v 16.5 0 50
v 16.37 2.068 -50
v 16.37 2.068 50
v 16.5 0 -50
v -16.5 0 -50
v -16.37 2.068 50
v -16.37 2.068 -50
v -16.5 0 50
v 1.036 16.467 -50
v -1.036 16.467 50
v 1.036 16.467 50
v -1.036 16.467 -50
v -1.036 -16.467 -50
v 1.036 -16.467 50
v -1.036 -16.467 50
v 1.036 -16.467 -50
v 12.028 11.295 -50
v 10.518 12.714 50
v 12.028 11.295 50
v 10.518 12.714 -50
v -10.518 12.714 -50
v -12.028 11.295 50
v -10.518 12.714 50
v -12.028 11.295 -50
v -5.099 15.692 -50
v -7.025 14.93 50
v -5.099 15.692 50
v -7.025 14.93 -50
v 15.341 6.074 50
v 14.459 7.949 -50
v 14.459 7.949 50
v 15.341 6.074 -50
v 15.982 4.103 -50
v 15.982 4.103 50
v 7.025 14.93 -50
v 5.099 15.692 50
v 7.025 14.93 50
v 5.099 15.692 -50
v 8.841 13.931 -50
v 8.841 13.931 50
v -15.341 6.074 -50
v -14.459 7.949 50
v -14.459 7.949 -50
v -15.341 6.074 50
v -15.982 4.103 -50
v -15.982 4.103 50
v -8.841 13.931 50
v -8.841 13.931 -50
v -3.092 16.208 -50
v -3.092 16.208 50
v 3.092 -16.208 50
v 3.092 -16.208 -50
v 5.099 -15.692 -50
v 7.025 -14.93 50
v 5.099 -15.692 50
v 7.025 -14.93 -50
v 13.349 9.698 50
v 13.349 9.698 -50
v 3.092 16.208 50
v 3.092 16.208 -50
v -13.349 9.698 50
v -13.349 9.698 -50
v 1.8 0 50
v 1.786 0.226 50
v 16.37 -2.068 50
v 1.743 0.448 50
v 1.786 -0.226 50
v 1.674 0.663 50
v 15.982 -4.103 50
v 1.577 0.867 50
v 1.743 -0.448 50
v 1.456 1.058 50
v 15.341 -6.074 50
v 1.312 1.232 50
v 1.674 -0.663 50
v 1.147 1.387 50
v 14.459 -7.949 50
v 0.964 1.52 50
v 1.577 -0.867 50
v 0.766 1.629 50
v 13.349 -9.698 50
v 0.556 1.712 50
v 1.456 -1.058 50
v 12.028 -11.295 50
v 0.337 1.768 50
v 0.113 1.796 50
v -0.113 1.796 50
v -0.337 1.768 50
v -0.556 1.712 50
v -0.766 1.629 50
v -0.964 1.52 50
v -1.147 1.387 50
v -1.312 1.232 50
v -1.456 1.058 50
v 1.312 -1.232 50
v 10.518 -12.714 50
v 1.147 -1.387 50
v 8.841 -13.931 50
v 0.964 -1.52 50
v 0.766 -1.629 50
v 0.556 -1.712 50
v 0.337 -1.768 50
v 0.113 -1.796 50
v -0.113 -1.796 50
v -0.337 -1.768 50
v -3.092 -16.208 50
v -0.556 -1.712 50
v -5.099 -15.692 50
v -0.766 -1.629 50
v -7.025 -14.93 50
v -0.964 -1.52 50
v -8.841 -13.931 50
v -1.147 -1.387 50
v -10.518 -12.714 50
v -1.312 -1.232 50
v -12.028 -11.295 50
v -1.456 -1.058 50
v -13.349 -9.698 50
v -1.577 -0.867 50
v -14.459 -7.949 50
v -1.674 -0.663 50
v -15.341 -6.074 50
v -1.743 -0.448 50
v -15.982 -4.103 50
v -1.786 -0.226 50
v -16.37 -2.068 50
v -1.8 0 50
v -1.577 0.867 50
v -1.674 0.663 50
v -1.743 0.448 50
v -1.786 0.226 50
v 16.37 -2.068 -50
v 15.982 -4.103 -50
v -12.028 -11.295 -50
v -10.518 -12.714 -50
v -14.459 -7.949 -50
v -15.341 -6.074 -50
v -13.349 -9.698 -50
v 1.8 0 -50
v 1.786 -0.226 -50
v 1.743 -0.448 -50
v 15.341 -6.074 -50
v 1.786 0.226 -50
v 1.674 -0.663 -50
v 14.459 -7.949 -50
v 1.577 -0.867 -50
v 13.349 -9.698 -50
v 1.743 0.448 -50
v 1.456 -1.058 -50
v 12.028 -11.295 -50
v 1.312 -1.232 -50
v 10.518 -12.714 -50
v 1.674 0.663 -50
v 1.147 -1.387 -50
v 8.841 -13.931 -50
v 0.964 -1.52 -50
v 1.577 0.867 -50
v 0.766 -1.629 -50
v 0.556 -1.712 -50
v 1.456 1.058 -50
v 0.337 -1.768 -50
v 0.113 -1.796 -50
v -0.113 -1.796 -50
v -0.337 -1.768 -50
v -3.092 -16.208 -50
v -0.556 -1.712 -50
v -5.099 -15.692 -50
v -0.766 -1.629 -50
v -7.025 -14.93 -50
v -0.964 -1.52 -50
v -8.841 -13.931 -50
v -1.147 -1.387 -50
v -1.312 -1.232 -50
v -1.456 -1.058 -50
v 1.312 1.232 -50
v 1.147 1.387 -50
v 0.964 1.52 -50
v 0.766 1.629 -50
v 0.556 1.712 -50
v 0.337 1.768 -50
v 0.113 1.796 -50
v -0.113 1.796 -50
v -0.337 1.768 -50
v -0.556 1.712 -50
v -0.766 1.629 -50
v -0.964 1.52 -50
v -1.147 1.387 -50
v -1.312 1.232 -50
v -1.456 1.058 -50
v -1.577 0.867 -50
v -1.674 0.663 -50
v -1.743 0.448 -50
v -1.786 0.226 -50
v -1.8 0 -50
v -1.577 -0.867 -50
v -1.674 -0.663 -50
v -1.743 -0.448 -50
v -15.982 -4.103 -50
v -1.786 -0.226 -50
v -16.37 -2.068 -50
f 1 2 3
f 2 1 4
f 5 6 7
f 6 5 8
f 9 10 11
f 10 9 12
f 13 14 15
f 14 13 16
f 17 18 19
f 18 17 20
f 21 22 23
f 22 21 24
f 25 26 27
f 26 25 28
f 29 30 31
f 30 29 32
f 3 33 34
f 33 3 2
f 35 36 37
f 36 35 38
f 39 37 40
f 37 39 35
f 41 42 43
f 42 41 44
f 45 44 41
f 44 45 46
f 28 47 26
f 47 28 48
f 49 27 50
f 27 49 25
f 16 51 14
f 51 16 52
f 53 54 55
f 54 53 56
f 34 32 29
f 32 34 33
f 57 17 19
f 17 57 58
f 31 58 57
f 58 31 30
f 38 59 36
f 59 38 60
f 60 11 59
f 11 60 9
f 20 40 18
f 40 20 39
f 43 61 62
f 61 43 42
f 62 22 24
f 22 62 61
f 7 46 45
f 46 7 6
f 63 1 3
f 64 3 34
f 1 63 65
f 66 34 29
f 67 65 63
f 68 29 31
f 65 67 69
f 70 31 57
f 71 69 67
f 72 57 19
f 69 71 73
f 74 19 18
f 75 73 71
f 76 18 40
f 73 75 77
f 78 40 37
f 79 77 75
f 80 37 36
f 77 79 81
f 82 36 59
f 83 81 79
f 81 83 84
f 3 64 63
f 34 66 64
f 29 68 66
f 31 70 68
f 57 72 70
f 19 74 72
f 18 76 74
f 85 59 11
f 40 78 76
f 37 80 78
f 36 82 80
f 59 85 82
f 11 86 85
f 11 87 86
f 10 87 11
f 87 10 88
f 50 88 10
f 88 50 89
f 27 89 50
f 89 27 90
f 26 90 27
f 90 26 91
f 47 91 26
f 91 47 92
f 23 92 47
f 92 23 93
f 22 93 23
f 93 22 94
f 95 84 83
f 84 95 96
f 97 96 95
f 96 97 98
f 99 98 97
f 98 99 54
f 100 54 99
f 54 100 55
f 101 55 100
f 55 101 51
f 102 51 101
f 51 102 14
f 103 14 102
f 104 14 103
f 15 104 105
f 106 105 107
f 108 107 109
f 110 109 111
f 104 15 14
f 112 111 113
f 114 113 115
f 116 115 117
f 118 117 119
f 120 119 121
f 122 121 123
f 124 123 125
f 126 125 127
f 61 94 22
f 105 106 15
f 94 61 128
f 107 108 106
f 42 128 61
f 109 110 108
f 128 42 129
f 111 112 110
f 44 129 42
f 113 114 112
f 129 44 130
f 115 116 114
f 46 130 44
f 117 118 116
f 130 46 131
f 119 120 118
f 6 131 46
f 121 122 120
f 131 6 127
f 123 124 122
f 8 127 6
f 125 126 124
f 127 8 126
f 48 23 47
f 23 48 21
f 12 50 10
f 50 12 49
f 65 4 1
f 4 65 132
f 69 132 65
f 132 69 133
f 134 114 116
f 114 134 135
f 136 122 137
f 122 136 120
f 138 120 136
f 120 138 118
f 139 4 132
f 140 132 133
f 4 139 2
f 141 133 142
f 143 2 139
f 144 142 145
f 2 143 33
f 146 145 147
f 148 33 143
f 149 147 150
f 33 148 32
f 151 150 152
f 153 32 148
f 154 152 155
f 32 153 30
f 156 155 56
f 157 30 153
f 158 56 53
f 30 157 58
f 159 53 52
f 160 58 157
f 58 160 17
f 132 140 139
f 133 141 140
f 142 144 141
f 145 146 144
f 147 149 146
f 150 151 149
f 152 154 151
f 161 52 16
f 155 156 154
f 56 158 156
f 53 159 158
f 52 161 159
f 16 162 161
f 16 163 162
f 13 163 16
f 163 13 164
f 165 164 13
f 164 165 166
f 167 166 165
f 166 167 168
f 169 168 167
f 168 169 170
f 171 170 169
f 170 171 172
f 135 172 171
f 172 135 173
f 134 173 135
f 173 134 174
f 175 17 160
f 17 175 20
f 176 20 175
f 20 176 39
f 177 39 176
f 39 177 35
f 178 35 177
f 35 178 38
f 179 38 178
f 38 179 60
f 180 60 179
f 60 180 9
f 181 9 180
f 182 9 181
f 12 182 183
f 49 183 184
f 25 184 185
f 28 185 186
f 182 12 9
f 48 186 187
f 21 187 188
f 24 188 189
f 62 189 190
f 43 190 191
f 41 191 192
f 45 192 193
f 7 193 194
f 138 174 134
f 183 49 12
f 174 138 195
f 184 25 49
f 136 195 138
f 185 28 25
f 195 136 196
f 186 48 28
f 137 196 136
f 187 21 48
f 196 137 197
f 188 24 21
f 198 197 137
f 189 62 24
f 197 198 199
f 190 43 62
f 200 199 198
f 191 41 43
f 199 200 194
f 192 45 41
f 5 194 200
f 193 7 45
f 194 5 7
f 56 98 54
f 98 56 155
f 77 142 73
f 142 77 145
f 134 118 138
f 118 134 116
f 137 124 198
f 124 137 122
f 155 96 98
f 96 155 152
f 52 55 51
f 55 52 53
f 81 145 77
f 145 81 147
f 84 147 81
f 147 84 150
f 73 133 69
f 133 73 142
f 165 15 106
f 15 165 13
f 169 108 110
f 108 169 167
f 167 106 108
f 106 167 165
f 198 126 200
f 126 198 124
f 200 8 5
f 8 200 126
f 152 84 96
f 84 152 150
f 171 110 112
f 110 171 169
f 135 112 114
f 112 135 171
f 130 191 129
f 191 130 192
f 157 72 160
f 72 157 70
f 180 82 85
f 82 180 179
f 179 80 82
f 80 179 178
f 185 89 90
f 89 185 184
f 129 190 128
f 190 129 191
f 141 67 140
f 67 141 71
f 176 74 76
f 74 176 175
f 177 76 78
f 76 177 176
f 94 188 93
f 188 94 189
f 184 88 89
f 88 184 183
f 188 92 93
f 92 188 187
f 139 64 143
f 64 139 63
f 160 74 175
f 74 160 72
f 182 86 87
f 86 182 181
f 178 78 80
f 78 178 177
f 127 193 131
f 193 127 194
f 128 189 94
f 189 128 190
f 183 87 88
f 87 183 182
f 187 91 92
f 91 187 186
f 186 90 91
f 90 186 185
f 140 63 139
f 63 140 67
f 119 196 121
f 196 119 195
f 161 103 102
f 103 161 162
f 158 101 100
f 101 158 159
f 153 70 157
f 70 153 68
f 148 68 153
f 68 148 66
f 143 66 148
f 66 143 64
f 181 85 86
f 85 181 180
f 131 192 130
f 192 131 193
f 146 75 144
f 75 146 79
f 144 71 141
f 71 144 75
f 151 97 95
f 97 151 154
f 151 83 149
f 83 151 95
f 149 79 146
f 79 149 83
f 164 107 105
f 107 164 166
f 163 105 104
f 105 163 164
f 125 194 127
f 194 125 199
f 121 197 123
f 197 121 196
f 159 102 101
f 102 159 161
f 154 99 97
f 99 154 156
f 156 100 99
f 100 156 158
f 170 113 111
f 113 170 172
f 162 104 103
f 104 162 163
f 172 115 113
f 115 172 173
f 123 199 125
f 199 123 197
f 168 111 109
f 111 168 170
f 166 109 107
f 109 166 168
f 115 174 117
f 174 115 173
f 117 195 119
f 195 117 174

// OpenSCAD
$fn = 50;


difference() {
	union() {
		translate(v = [0, 0, -50.0000000000]) {
			cylinder(h = 100, r = 16.5000000000);
		}
	}
	union() {
		translate(v = [0, 0, -100.0000000000]) {
			cylinder(h = 200, r = 1.8000000000);
		}
	}
}
